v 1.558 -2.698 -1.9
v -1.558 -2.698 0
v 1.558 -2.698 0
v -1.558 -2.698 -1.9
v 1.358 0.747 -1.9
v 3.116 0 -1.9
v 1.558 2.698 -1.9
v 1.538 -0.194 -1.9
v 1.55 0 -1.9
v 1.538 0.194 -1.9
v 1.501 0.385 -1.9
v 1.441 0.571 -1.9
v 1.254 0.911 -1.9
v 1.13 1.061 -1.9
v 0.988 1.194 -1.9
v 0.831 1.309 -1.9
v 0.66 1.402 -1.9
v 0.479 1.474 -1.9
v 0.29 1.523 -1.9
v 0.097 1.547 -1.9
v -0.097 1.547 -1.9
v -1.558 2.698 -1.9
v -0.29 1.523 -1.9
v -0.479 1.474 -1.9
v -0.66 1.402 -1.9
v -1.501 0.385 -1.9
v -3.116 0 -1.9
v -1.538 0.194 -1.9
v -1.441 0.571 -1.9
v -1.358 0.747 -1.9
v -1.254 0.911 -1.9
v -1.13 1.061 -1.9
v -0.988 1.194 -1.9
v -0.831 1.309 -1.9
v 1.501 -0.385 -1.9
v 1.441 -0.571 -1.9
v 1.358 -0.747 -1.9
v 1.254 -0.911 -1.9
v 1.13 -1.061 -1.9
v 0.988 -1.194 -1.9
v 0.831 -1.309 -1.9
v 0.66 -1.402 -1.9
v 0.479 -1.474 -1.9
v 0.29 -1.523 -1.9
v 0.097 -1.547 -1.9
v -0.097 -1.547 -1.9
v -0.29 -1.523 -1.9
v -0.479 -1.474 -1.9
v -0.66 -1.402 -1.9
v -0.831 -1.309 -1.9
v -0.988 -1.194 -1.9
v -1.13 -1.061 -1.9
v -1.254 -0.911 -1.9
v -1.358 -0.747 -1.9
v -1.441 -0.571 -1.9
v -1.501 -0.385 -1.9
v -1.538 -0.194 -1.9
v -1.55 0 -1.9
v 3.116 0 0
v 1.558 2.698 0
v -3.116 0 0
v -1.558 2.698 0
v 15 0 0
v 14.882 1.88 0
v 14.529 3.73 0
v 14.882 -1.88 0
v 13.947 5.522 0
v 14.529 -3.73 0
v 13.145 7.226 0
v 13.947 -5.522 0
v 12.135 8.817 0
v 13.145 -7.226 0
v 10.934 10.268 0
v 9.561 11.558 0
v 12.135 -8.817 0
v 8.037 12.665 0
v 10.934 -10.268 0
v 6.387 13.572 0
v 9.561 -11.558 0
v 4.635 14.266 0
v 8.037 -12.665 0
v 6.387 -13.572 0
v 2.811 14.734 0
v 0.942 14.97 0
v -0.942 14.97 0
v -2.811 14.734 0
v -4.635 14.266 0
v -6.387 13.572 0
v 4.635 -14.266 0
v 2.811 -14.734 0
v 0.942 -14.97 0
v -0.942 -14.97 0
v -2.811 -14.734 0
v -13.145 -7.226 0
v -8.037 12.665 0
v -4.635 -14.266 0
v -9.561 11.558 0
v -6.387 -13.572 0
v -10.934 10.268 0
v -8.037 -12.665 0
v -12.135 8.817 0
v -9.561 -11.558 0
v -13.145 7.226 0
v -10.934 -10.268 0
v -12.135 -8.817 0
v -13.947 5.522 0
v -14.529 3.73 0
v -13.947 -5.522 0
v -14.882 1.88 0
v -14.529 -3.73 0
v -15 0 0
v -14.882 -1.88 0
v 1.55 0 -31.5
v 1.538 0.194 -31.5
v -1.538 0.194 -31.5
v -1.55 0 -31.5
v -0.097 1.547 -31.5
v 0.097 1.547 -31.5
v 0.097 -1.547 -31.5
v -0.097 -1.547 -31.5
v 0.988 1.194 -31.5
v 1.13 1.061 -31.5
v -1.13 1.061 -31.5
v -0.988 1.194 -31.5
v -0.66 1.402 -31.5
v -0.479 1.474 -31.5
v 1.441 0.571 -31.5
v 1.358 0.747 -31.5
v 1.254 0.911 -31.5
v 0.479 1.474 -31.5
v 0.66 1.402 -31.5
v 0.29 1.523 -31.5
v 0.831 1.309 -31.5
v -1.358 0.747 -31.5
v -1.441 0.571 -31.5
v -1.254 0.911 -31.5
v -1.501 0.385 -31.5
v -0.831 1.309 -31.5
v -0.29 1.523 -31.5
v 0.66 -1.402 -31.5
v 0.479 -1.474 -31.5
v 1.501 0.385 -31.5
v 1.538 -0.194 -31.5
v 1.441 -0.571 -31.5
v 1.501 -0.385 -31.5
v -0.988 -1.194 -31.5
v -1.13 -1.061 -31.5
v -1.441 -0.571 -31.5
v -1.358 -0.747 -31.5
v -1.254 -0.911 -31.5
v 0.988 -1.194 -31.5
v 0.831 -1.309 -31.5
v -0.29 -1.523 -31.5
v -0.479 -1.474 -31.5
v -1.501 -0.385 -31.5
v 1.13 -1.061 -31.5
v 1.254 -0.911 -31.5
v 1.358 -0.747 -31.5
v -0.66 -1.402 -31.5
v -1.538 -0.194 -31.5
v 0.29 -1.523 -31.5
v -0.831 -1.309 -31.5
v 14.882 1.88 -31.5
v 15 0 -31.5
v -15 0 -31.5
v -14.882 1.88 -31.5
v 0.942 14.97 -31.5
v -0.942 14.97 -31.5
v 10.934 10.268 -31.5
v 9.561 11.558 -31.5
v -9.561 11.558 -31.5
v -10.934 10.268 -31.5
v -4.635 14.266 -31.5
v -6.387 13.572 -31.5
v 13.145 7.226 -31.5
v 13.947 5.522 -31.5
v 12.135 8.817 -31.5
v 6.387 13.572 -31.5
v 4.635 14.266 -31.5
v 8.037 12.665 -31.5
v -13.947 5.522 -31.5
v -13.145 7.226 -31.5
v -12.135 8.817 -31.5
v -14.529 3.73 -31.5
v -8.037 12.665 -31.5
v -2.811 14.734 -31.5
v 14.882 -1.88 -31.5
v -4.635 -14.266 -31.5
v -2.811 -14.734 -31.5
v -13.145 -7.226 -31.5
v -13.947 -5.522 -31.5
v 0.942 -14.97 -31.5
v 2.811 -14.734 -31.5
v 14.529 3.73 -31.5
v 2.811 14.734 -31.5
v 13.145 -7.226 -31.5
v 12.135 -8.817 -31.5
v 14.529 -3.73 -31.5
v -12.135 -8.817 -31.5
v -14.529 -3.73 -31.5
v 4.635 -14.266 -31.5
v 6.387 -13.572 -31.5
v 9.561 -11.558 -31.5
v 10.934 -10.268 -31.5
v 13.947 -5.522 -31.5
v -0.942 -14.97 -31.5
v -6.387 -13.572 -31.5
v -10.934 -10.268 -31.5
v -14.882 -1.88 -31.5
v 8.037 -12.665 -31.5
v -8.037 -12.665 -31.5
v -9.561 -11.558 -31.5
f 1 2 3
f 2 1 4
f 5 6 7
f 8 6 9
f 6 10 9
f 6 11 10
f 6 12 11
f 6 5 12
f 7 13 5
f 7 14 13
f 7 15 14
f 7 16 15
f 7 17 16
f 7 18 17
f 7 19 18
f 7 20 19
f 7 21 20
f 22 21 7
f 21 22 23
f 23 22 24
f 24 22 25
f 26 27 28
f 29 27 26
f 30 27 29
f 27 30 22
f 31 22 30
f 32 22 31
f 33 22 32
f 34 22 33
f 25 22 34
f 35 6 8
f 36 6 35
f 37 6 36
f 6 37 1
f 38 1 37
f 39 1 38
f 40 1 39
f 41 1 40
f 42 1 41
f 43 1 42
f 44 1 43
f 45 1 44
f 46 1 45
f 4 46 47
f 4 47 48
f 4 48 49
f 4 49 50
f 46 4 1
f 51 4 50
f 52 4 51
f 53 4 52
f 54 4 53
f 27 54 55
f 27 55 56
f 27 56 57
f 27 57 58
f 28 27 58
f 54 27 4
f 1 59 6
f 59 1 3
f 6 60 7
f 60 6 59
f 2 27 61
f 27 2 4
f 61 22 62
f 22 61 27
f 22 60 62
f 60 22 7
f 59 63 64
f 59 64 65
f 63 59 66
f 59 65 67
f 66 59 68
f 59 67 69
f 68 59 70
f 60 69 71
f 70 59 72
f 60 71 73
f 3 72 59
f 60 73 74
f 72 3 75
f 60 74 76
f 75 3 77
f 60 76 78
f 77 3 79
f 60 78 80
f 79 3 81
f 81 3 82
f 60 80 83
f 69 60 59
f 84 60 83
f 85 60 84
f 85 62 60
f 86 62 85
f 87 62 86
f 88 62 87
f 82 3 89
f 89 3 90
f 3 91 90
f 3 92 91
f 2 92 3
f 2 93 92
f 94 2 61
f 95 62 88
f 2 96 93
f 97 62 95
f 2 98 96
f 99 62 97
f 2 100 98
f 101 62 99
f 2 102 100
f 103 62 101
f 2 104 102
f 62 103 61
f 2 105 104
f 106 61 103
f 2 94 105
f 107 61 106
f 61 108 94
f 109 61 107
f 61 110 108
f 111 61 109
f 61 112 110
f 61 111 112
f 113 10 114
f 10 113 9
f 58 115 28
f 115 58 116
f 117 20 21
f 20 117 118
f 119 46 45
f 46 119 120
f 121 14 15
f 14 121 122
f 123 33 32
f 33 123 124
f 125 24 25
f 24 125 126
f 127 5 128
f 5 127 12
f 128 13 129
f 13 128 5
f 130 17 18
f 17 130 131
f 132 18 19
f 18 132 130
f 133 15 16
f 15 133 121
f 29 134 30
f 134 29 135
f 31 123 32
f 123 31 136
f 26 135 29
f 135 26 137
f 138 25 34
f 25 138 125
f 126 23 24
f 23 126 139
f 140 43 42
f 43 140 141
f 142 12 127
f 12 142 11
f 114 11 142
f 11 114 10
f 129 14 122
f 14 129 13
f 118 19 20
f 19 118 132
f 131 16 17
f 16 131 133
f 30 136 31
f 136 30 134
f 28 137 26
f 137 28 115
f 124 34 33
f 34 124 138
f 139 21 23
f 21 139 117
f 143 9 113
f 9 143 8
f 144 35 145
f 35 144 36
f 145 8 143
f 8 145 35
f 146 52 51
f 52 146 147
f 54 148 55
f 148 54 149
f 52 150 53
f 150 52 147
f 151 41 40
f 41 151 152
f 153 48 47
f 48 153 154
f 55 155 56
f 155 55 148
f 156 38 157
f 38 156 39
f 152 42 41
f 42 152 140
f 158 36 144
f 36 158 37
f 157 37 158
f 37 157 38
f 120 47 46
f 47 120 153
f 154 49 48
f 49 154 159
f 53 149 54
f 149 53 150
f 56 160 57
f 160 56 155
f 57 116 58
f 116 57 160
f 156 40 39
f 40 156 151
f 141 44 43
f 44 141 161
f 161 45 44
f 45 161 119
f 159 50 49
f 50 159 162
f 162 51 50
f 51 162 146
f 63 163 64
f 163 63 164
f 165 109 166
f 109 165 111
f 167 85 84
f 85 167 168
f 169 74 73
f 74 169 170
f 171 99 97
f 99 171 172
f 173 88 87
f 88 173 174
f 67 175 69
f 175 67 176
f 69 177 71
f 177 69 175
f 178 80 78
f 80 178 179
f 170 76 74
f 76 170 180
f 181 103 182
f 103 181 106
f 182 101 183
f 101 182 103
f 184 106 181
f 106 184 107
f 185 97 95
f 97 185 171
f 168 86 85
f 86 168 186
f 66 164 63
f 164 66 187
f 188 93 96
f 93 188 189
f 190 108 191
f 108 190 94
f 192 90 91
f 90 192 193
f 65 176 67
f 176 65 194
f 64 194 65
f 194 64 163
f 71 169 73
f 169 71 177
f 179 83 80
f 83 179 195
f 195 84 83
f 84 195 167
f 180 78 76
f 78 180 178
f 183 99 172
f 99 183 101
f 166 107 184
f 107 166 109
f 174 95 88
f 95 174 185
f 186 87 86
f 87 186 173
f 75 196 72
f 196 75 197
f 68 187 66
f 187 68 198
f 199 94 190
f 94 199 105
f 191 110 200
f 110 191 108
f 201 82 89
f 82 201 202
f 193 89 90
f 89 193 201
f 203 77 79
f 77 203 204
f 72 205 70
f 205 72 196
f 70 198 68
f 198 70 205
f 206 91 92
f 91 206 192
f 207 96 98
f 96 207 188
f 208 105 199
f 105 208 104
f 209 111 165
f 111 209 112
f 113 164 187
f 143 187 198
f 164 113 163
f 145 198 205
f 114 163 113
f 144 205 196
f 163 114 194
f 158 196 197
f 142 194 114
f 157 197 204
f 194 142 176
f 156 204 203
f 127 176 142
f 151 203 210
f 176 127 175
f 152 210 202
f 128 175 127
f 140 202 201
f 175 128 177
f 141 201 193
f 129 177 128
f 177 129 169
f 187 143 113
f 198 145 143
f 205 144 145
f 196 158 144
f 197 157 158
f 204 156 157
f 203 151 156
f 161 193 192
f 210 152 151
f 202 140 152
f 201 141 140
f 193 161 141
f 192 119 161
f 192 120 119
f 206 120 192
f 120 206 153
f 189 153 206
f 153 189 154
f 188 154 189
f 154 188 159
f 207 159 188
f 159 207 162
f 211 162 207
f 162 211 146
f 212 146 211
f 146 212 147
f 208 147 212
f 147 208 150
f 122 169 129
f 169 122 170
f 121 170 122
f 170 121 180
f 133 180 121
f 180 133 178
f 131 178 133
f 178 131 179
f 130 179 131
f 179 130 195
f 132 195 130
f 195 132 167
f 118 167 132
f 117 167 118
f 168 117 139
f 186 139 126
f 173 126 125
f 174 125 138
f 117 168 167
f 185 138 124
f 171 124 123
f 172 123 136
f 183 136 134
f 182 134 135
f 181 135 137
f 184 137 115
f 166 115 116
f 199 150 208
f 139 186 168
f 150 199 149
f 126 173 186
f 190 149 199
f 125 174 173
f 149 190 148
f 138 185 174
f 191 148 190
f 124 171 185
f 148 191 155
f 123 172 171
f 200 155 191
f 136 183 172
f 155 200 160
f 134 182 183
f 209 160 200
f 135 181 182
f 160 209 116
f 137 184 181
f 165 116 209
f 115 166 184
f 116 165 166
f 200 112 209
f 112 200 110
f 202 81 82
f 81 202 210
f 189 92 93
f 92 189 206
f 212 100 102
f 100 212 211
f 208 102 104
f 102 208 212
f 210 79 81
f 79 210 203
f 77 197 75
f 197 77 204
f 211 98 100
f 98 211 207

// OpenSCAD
$fn = 50;


difference() {
	union() {
		translate(v = [0, 0, -31.5000000000]) {
			cylinder(h = 31.5000000000, r = 15.0000000000);
		}
	}
	union() {
		translate(v = [0, 0, 0]) {
			rotate(a = [0, 0, 0]) {
				difference() {
					union() {
						translate(v = [0, 0, -1.9000000000]) {
							linear_extrude(height = 1.9000000000) {
								polygon(points = [[3.1158000000, 0.0000000000], [1.5579000000, 2.6983619531], [-1.5579000000, 2.6983619531], [-3.1158000000, 0.0000000000], [-1.5579000000, -2.6983619531], [1.5579000000, -2.6983619531]]);
							}
						}
					}
					union();
				}
			}
		}
		#translate(v = [0, 0, -100.0000000000]) {
			cylinder(h = 200, r = 1.5500000000);
		}
	}
}
